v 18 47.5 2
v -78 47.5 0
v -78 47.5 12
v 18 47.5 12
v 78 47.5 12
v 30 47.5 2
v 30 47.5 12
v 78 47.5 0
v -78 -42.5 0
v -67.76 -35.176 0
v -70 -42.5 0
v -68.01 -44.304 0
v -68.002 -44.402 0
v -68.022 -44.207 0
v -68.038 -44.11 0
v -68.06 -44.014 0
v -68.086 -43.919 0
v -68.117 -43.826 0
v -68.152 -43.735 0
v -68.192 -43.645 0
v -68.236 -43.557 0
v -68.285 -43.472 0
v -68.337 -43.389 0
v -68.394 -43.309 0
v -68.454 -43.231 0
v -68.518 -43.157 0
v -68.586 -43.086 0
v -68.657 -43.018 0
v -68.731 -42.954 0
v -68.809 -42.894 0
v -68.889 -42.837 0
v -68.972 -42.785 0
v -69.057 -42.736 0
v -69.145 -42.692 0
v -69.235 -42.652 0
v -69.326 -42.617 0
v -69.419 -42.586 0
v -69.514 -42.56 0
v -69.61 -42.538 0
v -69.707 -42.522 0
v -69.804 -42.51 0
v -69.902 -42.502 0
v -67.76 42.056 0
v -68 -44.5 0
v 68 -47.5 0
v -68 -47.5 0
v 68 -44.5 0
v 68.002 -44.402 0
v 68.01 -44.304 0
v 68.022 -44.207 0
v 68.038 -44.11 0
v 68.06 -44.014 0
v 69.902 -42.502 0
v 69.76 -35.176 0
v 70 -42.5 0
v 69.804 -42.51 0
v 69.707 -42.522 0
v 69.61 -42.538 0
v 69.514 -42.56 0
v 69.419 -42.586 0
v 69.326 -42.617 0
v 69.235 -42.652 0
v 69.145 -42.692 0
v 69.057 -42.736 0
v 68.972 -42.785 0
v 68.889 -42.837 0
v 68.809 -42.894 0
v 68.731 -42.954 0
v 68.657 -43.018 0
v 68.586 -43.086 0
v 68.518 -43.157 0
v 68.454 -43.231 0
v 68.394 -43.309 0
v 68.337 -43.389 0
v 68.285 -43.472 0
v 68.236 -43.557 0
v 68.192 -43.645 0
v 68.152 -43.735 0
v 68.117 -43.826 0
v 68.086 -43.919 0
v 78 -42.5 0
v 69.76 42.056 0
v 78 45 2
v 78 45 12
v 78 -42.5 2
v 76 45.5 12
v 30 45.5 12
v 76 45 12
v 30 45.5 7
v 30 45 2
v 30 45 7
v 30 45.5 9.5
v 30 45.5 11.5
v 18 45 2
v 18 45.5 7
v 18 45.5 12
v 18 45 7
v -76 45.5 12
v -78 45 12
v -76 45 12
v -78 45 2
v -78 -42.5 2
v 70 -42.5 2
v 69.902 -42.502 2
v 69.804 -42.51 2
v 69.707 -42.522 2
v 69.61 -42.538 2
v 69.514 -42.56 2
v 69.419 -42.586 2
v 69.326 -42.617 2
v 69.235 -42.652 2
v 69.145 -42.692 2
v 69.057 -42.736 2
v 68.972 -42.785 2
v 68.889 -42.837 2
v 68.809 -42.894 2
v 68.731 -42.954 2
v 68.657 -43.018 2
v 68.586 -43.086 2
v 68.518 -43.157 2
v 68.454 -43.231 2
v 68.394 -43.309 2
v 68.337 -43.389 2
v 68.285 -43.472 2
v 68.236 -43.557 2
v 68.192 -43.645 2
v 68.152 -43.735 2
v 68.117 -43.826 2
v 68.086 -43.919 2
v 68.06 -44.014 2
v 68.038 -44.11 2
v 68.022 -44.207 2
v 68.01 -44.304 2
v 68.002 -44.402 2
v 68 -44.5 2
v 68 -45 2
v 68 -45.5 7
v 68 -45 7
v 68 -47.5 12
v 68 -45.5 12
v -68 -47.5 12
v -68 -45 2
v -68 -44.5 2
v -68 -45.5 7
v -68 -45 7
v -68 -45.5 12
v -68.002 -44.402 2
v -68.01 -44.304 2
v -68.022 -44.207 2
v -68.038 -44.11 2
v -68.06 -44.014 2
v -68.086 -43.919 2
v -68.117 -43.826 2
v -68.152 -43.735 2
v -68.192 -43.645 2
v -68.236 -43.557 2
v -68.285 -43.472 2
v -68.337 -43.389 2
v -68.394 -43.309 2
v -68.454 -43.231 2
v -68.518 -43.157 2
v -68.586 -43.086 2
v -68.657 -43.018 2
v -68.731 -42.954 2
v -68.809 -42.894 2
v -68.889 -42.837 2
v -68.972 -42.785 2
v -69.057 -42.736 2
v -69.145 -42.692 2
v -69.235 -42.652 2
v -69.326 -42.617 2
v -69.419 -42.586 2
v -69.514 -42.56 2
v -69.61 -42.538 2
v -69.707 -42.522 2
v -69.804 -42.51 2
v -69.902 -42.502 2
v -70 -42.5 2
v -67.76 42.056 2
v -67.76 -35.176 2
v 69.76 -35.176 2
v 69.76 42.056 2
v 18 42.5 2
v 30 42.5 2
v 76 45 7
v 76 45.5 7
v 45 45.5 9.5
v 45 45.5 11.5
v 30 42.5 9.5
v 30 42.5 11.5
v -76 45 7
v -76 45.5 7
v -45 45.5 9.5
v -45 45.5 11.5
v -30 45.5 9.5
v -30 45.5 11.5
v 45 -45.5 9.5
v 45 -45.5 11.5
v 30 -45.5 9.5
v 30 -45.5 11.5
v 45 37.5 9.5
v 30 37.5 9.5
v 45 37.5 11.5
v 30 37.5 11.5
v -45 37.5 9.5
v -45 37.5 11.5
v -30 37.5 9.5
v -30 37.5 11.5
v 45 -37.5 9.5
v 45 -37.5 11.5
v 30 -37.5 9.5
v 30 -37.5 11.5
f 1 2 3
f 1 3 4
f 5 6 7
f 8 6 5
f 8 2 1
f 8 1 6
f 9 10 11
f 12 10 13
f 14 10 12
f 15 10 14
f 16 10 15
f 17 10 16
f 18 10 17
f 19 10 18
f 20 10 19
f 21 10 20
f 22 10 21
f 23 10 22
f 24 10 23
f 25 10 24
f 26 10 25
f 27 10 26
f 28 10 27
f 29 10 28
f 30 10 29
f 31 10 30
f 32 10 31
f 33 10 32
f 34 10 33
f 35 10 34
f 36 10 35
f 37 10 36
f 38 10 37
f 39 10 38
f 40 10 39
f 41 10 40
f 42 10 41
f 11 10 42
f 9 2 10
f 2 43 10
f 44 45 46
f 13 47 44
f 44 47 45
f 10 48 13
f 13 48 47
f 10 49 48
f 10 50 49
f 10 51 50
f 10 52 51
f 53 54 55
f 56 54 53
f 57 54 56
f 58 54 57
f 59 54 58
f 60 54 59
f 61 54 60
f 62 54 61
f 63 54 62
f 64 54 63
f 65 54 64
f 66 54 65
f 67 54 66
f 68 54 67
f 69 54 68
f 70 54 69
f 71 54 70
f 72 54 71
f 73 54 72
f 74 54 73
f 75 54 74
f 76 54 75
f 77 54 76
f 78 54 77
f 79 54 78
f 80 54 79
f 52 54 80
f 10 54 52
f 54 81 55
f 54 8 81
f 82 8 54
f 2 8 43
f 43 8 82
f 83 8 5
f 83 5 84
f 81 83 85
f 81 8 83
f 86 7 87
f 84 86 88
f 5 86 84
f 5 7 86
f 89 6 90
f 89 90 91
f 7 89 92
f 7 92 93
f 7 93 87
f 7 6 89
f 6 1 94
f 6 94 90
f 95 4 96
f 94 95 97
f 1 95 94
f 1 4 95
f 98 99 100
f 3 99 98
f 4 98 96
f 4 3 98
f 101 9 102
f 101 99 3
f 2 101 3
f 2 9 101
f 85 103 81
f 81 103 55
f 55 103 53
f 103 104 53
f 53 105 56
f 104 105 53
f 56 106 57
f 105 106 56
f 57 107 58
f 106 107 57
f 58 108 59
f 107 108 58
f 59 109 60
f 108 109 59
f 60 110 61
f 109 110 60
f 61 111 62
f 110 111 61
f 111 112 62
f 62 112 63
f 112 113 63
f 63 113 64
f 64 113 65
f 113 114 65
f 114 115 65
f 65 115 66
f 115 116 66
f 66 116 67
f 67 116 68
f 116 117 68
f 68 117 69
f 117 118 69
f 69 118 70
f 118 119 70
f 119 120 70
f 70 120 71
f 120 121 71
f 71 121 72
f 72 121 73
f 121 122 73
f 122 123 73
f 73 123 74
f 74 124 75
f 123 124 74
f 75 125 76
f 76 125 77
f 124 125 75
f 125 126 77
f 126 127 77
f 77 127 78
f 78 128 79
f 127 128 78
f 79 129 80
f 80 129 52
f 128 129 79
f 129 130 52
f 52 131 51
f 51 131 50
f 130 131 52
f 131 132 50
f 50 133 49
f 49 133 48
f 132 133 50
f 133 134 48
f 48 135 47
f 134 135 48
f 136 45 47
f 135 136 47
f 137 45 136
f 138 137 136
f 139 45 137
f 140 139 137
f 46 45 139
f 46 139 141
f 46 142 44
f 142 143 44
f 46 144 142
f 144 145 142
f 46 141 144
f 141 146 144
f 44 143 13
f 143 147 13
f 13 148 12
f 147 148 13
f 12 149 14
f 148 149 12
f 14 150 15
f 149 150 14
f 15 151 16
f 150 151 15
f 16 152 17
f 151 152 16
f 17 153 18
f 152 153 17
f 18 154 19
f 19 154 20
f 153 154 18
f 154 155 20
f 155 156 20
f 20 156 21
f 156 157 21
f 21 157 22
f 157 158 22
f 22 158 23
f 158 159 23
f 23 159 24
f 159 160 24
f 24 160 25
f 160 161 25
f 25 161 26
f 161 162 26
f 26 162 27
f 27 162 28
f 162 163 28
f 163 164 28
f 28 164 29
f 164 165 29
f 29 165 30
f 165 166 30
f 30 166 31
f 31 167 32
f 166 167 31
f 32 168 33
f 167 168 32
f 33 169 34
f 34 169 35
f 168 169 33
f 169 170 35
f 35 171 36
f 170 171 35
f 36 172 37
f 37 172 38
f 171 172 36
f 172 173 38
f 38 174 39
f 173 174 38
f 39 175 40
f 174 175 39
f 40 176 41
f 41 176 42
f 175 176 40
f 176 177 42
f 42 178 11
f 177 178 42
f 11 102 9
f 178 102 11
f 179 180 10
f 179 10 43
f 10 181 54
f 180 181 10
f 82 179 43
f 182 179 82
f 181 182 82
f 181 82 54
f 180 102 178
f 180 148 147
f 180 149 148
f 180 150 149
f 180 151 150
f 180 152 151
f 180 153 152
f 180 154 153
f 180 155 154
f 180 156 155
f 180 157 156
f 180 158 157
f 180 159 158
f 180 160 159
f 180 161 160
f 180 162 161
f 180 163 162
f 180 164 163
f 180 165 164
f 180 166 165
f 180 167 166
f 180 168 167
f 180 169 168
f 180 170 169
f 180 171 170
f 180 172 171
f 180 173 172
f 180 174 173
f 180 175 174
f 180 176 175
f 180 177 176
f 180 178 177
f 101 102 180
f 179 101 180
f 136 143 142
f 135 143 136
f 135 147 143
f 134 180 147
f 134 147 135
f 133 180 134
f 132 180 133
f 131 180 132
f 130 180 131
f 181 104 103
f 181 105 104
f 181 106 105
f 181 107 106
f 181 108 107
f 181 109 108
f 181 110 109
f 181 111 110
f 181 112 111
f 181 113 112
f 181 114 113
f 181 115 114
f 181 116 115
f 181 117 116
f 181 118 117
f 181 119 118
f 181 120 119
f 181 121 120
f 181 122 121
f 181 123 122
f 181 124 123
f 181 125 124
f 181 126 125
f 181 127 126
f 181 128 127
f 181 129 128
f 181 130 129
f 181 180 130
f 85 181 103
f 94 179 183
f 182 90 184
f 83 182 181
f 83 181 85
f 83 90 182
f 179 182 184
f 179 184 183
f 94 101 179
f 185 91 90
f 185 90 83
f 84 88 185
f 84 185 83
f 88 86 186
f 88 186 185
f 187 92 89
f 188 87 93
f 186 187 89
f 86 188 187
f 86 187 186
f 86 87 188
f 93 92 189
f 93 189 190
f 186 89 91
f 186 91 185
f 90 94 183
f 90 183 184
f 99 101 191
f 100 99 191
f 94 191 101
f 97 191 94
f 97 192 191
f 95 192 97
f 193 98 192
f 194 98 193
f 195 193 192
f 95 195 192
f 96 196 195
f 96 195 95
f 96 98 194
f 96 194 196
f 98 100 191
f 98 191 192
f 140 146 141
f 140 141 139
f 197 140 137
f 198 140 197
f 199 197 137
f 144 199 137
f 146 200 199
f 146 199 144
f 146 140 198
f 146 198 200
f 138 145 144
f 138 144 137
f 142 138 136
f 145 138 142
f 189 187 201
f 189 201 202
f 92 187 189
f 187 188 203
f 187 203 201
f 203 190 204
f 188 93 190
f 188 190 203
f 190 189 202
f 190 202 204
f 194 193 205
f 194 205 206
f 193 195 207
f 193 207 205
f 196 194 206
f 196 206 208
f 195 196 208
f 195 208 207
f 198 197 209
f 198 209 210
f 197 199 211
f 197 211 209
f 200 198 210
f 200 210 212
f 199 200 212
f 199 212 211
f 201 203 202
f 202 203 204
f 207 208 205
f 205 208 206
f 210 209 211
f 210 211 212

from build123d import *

# Parameters (mm, degrees)
SKETCH_W             = 156
SKETCH_H             = 95
PAD_DEPTH            = 15
SKETCH001_W          = 152
SKETCH001_H          = 91
POCKET_DEPTH         = 8
SKETCH002_W          = 156
SKETCH002_H          = 90
POCKET001_DEPTH      = 5
POCKET001_DEPTH_BACK = -9
SKETCH003_W          = 137.52
SKETCH003_H          = 77.232
POCKET002_DEPTH      = 5
SKETCH004_W          = 15
SKETCH004_H          = 2
PAD001_DEPTH         = 8
SKETCH005_W          = 15
SKETCH005_H          = 2
PAD002_DEPTH         = 8
POCKET003_DEPTH      = 3
POCKET004_DEPTH      = 13
SKETCH008_W          = 12
SKETCH008_H          = 10
POCKET005_DEPTH      = 5


with BuildPart() as part:
    # Sketch → Pad (new body)
    with BuildSketch(Plane.XY):
        Rectangle(SKETCH_W, SKETCH_H)
    extrude(amount=PAD_DEPTH)

    # Sketch001 (on Face6 of Pad) → Pocket (cut)
    with BuildSketch(Plane.XY.offset(15)):
        Rectangle(SKETCH001_W, SKETCH001_H)
    extrude(amount=-POCKET_DEPTH, mode=Mode.SUBTRACT)

    # Sketch002 (on Face11 of Pocket) → Pocket001 (cut, two sides)
    with BuildSketch(Plane.XY.offset(7)) as pocket001_sk:
        Rectangle(SKETCH002_W, SKETCH002_H)
    extrude(amount=-POCKET001_DEPTH, mode=Mode.SUBTRACT)
    extrude(pocket001_sk.sketch, amount=-POCKET001_DEPTH_BACK, mode=Mode.SUBTRACT)

    # Sketch003 (on Face7 of Pocket001) → Pocket002 (cut)
    with BuildSketch(Plane.XY.offset(2)):
        with Locations((1, 3.44)):
            Rectangle(SKETCH003_W, SKETCH003_H)
    extrude(amount=-POCKET002_DEPTH, mode=Mode.SUBTRACT)

    # Sketch004 (on Face16 of Pocket002) → Pad001 (join)
    with BuildSketch(Plane.XZ.offset(-45.5)):
        with Locations((-37.5, 10.5)):
            Rectangle(SKETCH004_W, SKETCH004_H)
        with Locations((37.5, 10.5)):
            Rectangle(SKETCH004_W, SKETCH004_H)
    extrude(amount=PAD001_DEPTH)

    # Sketch005 (on Face22 of Pad001) → Pad002 (join)
    with BuildSketch(Plane(origin=(0, -45.5, 0), x_dir=(-1, 0, 0), z_dir=(0, 1, 0))):
        with Locations((-37.5, 10.5)):
            Rectangle(SKETCH005_W, SKETCH005_H)
    extrude(amount=PAD002_DEPTH)

    # Sketch006 (on Face5 of Pad002) → Pocket003 (cut)
    with BuildSketch(Plane.XY.offset(15)):
        Polygon((-78, -45), (-78, -47.5), (78, -47.5), (78, -45), (76, -45), (76, -45.5), (-76, -45.5), (-76, -45), align=None)
        Polygon((-78, 47.5), (-78, 45), (-76, 45), (-76, 45.5), (76, 45.5), (76, 45), (78, 45), (78, 47.5), align=None)
    extrude(amount=-POCKET003_DEPTH, mode=Mode.SUBTRACT)

    # Sketch007 (on Face4 of Pocket003) → Pocket004 (cut)
    with BuildSketch(Plane.XY.offset(12)):
        with BuildLine():
            Line((-68, -47.5), (-78, -47.5))
            Line((-78, -47.5), (-78, -42.5))
            Line((-78, -42.5), (-70, -42.5))
            ThreePointArc((-68, -44.5), (-68.585786, -43.085786), (-70, -42.5))
            Line((-68, -47.5), (-68, -44.5))
        make_face()
        with BuildLine():
            Line((68, -47.5), (78, -47.5))
            Line((78, -47.5), (78, -42.5))
            Line((78, -42.5), (70, -42.5))
            ThreePointArc((70, -42.5), (68.585786, -43.085786), (68, -44.5))
            Line((68, -47.5), (68, -44.5))
        make_face()
    extrude(amount=-POCKET004_DEPTH, mode=Mode.SUBTRACT)

    # Sketch008 (on Face1 of Pocket004) → Pocket005 (cut)
    with BuildSketch(Plane(origin=(0, 47.5, 0), x_dir=(-1, 0, 0), z_dir=(0, 1, 0))):
        with Locations((-24, 7)):
            Rectangle(SKETCH008_W, SKETCH008_H)
    extrude(amount=-POCKET005_DEPTH, mode=Mode.SUBTRACT)


solid = part.part
